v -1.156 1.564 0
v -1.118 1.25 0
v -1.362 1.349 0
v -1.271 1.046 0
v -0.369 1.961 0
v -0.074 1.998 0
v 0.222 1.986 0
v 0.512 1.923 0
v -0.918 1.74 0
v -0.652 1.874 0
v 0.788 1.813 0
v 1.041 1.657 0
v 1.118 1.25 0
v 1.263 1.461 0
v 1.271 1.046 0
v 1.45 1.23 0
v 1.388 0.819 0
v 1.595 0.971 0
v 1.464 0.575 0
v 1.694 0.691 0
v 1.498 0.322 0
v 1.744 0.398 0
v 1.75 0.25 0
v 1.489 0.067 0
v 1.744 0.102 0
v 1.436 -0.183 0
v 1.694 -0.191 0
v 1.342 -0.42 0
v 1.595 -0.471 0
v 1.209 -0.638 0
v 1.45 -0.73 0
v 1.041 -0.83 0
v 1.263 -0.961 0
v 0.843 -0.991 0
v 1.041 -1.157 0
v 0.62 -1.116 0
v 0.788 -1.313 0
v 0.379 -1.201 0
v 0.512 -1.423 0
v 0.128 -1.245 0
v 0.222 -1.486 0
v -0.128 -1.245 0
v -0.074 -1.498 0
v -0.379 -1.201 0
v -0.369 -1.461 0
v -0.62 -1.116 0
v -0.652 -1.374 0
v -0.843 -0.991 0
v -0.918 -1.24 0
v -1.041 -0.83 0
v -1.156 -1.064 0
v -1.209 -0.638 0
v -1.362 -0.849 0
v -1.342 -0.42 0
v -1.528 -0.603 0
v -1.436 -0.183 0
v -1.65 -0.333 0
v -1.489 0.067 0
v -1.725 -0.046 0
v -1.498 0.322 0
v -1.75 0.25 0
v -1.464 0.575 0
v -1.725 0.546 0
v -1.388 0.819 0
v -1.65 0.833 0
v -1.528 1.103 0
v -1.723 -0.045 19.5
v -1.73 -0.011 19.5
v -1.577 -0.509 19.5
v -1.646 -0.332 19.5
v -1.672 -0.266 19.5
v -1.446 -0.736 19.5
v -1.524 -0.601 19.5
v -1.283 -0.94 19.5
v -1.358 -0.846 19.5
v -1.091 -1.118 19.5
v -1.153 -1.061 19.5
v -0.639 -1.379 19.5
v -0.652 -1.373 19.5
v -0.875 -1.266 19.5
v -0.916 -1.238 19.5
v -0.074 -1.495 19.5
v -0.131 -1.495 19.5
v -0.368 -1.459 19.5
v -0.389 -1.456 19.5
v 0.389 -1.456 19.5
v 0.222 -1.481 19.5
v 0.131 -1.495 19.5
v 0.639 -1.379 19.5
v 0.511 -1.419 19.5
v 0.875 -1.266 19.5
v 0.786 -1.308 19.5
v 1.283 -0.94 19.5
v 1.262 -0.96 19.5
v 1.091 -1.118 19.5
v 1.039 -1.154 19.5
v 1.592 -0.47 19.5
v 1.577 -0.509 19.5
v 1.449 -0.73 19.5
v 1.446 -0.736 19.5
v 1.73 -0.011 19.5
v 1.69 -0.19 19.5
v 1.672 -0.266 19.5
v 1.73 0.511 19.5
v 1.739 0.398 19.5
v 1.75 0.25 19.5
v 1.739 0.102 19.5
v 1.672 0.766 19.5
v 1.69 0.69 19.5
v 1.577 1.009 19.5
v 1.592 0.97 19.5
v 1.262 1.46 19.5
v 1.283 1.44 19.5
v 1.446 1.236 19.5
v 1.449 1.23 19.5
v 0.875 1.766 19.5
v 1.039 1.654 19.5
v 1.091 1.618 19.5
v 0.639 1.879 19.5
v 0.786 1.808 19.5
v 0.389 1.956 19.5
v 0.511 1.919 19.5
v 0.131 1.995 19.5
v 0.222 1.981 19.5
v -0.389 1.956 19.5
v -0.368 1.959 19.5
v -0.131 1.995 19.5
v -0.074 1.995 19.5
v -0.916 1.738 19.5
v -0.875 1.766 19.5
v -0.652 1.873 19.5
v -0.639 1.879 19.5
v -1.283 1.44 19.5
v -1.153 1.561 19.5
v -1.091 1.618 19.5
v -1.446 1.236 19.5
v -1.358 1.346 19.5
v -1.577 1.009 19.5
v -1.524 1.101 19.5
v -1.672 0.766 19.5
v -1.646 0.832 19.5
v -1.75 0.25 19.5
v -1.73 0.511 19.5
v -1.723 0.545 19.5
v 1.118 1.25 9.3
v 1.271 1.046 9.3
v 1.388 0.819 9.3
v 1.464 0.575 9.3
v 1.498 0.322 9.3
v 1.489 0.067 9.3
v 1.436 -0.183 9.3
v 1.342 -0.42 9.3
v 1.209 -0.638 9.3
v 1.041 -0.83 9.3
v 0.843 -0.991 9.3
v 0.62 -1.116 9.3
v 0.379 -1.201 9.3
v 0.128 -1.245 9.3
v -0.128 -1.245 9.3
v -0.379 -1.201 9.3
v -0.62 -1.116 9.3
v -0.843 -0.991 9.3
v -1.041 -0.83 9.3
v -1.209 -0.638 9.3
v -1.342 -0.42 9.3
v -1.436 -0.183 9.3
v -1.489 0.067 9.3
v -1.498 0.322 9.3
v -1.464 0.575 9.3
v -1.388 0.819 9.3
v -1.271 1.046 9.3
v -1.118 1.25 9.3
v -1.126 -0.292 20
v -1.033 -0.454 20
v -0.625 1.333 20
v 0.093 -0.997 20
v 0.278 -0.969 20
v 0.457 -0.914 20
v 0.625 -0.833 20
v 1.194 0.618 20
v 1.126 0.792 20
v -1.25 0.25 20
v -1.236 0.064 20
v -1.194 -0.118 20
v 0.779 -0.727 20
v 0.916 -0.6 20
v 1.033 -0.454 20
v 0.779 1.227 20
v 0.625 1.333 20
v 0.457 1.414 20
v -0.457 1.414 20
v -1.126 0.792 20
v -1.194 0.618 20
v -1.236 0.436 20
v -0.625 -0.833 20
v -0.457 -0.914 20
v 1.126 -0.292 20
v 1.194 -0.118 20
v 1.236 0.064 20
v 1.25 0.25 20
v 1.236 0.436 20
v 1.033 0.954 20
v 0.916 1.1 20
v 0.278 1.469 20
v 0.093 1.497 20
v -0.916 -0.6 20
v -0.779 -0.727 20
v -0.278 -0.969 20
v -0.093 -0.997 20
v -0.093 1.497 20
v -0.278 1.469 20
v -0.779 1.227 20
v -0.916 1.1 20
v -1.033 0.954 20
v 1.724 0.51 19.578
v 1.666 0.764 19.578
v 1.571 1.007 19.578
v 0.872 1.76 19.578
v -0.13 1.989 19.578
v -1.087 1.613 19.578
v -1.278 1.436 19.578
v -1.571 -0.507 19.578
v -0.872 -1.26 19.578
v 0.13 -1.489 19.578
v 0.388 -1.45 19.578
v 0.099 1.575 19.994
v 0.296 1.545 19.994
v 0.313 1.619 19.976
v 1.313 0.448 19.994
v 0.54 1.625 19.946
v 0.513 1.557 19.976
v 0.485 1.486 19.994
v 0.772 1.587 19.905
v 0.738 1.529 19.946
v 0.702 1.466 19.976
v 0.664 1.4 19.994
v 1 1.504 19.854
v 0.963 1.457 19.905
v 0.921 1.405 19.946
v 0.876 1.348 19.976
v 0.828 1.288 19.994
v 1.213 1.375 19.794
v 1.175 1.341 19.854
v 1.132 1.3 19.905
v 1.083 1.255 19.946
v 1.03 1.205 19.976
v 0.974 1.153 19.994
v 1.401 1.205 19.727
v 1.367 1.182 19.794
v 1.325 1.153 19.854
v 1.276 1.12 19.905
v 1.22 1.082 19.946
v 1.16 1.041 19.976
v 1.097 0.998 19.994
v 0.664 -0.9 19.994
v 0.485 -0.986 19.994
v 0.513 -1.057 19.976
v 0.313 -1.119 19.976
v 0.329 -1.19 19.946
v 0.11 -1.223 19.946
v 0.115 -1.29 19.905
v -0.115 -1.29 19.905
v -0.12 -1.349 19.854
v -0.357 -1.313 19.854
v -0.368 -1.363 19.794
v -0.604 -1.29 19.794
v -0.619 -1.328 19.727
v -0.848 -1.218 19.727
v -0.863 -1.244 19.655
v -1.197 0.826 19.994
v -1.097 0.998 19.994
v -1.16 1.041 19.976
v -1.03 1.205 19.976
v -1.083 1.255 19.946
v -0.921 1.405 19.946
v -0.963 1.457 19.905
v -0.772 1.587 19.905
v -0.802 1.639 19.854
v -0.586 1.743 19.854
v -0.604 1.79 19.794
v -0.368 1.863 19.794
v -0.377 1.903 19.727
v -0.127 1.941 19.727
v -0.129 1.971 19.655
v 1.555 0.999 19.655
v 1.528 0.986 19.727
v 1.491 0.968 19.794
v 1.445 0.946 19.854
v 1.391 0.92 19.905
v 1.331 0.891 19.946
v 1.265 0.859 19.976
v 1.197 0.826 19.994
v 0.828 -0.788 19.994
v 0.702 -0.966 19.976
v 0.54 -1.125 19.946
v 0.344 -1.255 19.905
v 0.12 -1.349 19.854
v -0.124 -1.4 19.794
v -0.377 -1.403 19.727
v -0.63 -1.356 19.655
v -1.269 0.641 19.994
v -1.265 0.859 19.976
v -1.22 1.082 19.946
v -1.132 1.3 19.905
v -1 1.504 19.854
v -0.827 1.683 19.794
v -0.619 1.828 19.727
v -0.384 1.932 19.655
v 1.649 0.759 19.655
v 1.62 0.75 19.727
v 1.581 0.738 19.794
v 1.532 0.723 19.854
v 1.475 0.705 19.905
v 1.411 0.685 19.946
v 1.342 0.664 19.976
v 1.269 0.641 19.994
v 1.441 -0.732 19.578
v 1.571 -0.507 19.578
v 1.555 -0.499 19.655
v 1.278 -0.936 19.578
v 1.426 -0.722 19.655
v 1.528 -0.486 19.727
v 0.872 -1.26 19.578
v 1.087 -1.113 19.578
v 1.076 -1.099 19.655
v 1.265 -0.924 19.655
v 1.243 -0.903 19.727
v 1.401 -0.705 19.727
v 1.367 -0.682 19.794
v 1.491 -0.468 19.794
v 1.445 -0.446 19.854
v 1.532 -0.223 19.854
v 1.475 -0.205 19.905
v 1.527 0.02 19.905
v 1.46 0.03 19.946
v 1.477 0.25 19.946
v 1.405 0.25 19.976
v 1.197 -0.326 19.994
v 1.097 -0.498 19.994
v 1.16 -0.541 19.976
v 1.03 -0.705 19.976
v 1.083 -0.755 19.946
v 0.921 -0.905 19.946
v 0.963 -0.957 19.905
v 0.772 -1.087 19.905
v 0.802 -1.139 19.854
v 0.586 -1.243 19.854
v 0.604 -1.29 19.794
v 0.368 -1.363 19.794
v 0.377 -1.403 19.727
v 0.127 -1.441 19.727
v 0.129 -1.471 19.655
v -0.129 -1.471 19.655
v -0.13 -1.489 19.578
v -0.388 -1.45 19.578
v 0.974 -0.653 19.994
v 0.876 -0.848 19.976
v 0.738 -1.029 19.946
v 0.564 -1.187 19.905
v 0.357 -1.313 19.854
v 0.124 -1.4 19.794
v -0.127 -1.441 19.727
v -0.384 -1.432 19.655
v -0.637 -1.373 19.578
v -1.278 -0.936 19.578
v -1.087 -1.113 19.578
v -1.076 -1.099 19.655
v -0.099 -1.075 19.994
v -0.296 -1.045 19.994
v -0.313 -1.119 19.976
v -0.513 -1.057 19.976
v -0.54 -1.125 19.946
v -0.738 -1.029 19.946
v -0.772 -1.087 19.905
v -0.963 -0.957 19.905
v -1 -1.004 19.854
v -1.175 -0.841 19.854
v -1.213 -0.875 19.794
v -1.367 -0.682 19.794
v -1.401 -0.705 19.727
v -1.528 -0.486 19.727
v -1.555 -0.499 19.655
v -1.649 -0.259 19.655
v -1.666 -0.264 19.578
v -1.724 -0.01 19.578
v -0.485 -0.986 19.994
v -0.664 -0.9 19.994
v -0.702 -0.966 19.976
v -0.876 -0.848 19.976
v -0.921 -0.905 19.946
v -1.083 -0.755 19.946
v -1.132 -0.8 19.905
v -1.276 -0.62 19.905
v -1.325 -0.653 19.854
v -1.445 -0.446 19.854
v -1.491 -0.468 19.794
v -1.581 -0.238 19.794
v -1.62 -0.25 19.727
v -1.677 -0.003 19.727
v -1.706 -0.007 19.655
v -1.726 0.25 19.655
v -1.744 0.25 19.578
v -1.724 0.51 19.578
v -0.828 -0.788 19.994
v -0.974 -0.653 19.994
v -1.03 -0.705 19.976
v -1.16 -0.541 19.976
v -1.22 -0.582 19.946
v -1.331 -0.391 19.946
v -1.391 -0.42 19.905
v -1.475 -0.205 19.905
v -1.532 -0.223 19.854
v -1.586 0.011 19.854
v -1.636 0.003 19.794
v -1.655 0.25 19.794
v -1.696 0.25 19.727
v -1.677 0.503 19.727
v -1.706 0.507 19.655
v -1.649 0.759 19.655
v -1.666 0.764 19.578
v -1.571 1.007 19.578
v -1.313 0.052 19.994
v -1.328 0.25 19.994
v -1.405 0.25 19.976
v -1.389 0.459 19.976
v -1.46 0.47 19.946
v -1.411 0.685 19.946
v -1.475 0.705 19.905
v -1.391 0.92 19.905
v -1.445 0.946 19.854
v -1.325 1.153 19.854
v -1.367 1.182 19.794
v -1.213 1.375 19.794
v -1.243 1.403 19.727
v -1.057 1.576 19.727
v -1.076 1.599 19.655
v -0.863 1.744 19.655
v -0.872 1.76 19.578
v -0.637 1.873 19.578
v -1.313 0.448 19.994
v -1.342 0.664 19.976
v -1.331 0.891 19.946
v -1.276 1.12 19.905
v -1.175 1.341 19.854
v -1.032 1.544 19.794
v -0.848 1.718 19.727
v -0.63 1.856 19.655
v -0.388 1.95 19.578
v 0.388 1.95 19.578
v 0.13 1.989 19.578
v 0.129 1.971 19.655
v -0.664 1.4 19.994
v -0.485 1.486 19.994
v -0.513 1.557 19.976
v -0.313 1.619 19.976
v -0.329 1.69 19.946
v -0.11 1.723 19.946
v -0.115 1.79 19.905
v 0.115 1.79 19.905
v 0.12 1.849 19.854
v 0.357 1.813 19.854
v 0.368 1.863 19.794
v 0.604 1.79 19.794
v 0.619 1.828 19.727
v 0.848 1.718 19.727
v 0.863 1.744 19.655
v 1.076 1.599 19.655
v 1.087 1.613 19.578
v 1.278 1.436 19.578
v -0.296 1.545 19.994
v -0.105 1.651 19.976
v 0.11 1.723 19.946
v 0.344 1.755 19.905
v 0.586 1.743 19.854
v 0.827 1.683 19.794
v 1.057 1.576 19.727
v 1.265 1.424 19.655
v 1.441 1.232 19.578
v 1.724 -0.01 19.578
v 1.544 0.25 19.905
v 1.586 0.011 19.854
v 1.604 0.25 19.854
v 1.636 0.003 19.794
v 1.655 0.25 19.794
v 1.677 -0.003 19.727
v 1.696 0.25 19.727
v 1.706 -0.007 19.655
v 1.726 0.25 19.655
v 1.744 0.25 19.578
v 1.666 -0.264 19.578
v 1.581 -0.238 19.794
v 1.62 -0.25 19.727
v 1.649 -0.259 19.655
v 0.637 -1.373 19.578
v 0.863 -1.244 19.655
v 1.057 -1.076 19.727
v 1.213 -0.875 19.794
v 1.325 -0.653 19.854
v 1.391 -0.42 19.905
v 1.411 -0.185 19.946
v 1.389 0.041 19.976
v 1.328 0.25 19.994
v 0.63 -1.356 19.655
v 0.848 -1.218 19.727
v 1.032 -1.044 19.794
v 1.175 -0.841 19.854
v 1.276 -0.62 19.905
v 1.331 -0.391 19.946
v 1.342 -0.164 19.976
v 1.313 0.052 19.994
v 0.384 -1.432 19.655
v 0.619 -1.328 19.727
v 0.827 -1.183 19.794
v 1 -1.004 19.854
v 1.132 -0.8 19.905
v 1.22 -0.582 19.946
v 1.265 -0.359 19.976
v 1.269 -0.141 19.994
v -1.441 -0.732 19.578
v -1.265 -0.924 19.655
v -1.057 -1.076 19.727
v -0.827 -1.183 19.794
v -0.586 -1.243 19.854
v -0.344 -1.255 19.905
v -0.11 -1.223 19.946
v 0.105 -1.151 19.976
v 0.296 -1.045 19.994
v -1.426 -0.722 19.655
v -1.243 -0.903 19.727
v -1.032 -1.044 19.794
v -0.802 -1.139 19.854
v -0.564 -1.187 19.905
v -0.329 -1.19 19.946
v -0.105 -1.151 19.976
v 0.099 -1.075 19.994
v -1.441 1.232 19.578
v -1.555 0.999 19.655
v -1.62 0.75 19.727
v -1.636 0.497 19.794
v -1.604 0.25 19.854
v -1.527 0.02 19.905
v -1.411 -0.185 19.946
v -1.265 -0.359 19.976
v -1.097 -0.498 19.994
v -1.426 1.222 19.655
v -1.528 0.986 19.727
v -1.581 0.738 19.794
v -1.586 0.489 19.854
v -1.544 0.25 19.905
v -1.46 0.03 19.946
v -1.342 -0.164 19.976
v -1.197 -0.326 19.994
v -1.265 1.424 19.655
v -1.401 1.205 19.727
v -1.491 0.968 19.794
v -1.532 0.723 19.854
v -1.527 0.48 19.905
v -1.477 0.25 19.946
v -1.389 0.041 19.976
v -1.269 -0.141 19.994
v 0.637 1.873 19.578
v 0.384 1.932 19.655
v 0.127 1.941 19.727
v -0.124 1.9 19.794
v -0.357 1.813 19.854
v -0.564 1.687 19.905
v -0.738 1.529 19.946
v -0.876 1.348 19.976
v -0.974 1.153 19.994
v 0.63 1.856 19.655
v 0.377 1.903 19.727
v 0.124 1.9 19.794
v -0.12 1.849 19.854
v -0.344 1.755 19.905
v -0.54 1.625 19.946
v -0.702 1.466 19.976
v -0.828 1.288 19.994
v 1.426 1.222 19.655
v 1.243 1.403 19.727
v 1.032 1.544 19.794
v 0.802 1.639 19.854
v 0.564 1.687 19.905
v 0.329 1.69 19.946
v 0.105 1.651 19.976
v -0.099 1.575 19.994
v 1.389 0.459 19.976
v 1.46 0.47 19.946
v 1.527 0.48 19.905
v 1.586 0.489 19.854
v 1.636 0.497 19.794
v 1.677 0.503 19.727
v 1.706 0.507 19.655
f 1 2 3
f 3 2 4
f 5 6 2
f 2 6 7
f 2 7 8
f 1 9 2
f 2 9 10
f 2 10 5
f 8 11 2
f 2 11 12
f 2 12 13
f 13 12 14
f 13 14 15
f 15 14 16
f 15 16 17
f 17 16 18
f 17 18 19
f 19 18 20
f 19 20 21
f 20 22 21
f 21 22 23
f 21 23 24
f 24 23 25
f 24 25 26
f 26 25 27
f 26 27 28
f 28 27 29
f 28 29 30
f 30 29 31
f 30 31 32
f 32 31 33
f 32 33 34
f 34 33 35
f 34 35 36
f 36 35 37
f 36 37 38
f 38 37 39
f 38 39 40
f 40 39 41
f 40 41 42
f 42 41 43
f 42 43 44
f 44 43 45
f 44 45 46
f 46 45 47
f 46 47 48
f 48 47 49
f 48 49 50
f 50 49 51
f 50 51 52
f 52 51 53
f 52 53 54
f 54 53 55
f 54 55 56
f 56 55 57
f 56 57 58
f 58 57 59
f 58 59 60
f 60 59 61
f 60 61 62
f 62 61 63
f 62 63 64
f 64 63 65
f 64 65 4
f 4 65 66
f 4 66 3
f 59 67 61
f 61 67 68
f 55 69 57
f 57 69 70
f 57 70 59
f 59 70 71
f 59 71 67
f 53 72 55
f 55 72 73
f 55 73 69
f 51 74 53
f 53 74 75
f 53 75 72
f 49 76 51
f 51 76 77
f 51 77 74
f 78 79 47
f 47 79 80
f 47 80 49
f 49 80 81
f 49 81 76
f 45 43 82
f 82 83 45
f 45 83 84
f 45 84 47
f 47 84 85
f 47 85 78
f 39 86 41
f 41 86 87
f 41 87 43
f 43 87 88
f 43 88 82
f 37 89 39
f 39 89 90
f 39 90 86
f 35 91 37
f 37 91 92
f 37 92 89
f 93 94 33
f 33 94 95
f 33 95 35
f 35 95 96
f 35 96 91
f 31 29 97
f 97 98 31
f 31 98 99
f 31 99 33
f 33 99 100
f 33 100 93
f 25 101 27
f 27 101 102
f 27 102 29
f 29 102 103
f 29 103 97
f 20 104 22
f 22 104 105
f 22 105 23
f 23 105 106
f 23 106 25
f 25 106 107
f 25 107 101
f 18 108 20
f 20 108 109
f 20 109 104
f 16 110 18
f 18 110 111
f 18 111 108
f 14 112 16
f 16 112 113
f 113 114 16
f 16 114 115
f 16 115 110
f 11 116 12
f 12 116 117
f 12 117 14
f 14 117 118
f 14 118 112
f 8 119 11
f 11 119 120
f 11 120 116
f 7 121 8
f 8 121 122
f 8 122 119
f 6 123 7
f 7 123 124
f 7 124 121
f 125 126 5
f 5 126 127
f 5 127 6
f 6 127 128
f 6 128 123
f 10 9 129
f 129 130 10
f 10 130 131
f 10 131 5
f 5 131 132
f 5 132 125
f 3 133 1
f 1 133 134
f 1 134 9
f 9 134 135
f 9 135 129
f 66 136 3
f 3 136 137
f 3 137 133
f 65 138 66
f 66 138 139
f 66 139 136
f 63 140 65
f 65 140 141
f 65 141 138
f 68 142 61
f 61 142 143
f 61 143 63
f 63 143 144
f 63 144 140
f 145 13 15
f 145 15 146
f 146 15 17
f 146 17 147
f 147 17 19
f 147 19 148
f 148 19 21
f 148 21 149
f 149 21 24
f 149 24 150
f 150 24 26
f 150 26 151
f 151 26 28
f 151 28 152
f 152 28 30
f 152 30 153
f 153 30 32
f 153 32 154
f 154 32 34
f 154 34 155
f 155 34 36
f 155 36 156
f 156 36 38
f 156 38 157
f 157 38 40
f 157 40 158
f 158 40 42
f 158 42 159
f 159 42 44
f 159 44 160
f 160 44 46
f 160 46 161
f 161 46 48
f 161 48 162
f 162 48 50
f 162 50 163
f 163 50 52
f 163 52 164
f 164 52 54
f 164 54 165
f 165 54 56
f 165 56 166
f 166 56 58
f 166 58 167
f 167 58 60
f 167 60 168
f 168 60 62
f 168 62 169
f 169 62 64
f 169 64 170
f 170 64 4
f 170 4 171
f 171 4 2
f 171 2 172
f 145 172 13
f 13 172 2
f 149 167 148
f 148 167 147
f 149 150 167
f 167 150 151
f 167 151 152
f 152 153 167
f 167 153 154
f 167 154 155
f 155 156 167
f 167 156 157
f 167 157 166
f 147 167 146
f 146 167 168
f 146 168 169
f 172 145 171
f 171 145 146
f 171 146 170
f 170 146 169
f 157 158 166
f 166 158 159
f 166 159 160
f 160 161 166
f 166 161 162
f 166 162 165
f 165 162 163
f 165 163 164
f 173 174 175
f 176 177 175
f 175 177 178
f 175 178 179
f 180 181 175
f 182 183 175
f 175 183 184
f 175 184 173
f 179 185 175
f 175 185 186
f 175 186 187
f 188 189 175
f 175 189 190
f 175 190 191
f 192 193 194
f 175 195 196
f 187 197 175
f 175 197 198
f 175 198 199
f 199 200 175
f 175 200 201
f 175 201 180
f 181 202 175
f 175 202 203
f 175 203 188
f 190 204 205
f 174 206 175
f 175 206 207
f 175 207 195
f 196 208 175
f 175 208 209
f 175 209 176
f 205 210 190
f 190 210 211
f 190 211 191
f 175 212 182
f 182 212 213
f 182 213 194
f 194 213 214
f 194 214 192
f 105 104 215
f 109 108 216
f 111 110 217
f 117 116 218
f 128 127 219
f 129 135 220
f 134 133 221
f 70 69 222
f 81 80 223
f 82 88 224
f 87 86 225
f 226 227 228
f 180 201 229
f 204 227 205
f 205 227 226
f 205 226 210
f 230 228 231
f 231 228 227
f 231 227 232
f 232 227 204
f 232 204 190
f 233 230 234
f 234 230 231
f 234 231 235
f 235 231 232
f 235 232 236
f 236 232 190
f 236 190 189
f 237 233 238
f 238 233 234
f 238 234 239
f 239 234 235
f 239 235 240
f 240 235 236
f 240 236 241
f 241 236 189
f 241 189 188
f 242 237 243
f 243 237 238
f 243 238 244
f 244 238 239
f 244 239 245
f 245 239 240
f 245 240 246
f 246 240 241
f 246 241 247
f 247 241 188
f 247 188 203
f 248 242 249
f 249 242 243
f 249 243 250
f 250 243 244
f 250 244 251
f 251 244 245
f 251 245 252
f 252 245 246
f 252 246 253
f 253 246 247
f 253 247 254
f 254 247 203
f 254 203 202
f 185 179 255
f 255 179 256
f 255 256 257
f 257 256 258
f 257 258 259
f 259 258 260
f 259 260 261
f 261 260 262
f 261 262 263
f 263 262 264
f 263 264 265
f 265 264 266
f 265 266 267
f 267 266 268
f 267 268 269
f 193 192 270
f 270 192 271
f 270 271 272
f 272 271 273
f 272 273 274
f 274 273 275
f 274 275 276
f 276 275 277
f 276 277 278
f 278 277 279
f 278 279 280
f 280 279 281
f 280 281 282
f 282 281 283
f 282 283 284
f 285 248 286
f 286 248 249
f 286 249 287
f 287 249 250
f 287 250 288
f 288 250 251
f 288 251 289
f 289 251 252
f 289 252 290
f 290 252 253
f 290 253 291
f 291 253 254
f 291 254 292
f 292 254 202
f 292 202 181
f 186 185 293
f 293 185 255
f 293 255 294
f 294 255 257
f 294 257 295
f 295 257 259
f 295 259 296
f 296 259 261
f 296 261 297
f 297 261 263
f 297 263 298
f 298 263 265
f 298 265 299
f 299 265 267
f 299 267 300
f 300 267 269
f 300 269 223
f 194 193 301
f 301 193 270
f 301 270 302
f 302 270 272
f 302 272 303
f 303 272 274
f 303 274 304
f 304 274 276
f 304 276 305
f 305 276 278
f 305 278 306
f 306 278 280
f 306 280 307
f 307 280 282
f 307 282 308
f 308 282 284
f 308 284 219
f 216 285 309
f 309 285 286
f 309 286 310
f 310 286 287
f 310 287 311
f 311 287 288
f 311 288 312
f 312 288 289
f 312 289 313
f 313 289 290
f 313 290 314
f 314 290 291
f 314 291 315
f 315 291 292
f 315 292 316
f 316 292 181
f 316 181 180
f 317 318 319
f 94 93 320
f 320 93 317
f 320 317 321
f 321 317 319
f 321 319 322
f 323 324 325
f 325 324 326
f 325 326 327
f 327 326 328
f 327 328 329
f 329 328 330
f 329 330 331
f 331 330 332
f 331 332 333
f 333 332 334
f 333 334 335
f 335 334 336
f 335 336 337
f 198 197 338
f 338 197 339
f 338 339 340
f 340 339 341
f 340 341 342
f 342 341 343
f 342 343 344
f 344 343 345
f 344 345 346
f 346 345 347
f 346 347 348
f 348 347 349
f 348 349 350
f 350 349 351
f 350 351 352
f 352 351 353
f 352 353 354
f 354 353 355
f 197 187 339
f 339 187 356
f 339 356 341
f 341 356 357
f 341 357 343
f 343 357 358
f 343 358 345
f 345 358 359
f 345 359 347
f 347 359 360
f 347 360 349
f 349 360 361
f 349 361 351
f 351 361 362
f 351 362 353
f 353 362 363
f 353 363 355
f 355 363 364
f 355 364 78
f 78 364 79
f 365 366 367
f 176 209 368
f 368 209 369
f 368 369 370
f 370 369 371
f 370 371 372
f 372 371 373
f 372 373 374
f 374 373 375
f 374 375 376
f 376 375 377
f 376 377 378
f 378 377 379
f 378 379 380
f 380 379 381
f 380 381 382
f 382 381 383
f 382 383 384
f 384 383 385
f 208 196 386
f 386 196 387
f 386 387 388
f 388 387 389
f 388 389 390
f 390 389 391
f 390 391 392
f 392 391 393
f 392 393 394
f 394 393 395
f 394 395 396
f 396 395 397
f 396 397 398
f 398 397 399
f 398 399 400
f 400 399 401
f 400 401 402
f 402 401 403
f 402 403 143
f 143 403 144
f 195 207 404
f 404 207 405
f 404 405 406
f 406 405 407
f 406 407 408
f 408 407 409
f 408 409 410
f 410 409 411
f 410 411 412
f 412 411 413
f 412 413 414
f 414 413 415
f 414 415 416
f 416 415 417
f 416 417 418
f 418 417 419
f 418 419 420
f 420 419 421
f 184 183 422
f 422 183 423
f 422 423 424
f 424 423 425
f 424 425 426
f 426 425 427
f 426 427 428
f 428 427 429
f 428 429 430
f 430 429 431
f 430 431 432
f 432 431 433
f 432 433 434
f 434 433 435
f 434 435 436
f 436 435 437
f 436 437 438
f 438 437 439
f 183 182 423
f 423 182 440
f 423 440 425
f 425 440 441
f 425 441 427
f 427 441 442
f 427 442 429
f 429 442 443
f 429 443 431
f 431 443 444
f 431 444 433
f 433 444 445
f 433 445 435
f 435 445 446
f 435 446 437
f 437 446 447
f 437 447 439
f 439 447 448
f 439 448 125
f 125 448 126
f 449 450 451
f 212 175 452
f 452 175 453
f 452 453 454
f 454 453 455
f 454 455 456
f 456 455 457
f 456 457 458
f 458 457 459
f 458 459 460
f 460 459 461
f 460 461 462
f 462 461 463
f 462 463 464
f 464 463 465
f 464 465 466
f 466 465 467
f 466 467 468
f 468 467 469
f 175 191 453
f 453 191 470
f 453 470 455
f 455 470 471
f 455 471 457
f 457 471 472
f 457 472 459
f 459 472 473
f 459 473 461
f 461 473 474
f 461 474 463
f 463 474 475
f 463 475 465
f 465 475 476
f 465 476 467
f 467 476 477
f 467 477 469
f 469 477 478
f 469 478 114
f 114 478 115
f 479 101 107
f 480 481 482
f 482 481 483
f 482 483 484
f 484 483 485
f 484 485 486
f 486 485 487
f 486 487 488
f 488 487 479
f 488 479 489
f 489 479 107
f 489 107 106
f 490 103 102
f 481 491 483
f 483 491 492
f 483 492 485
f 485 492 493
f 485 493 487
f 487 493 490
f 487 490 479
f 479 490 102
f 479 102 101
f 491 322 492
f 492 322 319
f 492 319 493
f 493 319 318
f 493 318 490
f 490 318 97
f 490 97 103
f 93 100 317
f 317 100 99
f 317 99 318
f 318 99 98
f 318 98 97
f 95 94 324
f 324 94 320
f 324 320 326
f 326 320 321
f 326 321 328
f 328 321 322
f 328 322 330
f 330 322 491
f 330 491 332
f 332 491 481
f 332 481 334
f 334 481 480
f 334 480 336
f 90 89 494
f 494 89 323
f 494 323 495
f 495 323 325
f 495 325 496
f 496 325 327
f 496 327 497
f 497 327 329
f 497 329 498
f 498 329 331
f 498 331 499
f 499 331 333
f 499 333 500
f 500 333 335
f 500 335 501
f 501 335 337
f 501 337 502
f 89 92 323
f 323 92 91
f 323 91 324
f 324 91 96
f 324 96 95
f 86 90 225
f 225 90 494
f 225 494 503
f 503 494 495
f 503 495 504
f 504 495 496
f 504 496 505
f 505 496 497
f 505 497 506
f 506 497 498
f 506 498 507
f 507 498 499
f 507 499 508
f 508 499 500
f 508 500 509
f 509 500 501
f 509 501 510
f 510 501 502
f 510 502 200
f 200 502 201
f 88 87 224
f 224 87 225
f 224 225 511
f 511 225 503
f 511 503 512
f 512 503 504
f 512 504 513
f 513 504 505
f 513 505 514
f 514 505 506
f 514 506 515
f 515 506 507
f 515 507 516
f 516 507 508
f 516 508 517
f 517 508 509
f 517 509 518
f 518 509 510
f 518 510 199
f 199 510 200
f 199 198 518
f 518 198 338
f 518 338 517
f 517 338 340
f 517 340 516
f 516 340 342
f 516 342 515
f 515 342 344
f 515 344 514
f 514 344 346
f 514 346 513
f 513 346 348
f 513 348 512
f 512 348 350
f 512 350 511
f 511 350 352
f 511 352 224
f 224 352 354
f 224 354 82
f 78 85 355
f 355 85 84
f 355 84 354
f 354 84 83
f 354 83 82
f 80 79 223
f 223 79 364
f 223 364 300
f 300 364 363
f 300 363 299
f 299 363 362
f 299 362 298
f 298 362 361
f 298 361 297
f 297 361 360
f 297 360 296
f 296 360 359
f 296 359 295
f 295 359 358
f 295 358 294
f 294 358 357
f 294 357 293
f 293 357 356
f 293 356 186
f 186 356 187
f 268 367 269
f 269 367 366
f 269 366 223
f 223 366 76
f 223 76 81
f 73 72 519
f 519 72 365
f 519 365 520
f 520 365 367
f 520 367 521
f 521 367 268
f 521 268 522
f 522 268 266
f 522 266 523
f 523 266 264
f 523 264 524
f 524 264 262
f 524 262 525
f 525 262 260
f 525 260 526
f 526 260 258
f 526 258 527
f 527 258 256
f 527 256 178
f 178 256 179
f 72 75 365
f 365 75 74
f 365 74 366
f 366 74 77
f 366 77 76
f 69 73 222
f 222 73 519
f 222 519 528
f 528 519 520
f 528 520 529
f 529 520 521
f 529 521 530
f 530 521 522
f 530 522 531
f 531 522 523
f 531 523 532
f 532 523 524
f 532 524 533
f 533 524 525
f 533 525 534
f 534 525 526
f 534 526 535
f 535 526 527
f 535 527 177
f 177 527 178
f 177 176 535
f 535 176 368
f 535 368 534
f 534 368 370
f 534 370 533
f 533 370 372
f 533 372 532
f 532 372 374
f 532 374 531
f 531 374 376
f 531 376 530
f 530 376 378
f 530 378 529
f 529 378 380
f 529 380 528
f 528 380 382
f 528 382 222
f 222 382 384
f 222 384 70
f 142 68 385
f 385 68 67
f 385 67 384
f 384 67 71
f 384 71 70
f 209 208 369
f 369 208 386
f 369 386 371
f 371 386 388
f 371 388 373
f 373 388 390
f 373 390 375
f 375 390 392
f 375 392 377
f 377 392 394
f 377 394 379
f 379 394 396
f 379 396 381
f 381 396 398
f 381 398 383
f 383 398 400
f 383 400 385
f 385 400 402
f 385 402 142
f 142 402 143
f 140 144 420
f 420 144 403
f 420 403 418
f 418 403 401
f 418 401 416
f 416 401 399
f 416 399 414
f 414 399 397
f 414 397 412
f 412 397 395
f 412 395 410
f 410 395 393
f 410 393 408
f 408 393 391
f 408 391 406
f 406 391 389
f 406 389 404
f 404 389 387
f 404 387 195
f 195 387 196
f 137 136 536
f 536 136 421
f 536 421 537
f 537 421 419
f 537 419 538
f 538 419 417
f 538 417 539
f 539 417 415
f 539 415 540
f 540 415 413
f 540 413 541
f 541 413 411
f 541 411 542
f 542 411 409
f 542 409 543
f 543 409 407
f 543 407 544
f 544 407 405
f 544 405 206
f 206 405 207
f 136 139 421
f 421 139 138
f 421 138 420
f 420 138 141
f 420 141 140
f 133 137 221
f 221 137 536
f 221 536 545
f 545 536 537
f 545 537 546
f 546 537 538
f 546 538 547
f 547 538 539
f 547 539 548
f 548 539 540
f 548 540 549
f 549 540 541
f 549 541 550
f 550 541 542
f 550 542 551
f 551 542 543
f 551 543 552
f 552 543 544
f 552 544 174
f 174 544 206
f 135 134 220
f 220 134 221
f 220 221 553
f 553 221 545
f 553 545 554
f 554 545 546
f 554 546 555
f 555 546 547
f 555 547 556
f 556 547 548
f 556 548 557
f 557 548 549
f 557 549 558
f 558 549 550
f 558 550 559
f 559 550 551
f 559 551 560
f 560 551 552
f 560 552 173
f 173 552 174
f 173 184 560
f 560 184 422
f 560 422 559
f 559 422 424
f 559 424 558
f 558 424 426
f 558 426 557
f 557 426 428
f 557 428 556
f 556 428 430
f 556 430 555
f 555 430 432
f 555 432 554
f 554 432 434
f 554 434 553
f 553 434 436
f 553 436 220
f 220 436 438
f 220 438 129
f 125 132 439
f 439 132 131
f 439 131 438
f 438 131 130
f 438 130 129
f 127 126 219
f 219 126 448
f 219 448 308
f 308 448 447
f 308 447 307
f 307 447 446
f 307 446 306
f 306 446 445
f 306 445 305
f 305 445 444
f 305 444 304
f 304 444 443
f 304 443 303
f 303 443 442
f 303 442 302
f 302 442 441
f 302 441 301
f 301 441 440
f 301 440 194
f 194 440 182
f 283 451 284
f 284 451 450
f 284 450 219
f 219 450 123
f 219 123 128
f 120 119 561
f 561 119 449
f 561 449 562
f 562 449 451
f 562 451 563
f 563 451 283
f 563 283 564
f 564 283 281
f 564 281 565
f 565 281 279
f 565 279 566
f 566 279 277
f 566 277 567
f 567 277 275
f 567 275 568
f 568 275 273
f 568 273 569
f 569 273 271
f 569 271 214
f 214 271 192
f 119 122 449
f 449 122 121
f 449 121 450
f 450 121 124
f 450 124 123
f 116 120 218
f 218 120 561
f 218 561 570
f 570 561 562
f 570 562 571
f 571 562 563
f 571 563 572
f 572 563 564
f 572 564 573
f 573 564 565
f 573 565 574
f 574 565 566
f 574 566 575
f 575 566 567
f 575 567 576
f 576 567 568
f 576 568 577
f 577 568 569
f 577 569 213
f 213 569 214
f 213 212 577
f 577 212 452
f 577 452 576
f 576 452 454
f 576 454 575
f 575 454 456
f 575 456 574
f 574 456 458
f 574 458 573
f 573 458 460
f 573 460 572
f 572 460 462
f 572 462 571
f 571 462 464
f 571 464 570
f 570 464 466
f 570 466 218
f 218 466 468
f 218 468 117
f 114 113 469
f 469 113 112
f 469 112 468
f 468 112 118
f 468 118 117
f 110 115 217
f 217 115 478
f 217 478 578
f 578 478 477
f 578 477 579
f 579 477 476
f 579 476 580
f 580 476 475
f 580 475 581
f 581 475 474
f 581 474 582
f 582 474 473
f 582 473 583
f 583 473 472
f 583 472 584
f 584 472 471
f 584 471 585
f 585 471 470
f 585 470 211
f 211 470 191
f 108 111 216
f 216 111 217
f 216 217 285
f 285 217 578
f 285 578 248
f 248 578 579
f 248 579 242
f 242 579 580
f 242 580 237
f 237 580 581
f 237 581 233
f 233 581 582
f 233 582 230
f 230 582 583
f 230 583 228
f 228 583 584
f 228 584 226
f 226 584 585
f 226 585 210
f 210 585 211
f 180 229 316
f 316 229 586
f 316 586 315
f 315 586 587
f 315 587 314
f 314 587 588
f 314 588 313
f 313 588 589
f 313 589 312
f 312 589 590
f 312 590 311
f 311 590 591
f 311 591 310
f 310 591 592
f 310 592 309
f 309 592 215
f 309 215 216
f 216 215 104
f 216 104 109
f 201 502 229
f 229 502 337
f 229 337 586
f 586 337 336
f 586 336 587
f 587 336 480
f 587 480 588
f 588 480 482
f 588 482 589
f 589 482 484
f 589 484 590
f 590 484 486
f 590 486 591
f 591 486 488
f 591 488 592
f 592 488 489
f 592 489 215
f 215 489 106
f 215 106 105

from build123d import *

# Parameters (mm, degrees)
ESBO_O2_R                = 1.75
RESSALTO_EXTRUS_O1_DEPTH = 9.3
ESBO_O3_R                = 1.75
RESSALTO_EXTRUS_O2_DEPTH = 10.7
FILETE1_R                = 0.5


with BuildPart() as part:
    # Esboço2 → Ressalto-extrusão1 (new body)
    with BuildSketch(Plane.XY):
        with Locations((0, 0.25)):
            Circle(ESBO_O2_R)
        with BuildLine():
            Line((1.118033989, 1.25), (-1.118033989, 1.25))
            ThreePointArc((-1.118033989, 1.25), (0, -1.25), (1.118033989, 1.25))
        make_face(mode=Mode.SUBTRACT)
    extrude(amount=RESSALTO_EXTRUS_O1_DEPTH)

    # Esboço3 → Ressalto-extrusão2 (add)
    with BuildSketch(Plane.XY.offset(9.3)):
        with Locations((0, 0.25)):
            Circle(ESBO_O3_R)
    extrude(amount=RESSALTO_EXTRUS_O2_DEPTH)

    # Filete1
    filete1_edges = [part.edges().sort_by_distance(p)[0] for p in [
        (-1.75, 0.25, 20),
    ]]
    fillet(filete1_edges, radius=FILETE1_R)


solid = part.part
